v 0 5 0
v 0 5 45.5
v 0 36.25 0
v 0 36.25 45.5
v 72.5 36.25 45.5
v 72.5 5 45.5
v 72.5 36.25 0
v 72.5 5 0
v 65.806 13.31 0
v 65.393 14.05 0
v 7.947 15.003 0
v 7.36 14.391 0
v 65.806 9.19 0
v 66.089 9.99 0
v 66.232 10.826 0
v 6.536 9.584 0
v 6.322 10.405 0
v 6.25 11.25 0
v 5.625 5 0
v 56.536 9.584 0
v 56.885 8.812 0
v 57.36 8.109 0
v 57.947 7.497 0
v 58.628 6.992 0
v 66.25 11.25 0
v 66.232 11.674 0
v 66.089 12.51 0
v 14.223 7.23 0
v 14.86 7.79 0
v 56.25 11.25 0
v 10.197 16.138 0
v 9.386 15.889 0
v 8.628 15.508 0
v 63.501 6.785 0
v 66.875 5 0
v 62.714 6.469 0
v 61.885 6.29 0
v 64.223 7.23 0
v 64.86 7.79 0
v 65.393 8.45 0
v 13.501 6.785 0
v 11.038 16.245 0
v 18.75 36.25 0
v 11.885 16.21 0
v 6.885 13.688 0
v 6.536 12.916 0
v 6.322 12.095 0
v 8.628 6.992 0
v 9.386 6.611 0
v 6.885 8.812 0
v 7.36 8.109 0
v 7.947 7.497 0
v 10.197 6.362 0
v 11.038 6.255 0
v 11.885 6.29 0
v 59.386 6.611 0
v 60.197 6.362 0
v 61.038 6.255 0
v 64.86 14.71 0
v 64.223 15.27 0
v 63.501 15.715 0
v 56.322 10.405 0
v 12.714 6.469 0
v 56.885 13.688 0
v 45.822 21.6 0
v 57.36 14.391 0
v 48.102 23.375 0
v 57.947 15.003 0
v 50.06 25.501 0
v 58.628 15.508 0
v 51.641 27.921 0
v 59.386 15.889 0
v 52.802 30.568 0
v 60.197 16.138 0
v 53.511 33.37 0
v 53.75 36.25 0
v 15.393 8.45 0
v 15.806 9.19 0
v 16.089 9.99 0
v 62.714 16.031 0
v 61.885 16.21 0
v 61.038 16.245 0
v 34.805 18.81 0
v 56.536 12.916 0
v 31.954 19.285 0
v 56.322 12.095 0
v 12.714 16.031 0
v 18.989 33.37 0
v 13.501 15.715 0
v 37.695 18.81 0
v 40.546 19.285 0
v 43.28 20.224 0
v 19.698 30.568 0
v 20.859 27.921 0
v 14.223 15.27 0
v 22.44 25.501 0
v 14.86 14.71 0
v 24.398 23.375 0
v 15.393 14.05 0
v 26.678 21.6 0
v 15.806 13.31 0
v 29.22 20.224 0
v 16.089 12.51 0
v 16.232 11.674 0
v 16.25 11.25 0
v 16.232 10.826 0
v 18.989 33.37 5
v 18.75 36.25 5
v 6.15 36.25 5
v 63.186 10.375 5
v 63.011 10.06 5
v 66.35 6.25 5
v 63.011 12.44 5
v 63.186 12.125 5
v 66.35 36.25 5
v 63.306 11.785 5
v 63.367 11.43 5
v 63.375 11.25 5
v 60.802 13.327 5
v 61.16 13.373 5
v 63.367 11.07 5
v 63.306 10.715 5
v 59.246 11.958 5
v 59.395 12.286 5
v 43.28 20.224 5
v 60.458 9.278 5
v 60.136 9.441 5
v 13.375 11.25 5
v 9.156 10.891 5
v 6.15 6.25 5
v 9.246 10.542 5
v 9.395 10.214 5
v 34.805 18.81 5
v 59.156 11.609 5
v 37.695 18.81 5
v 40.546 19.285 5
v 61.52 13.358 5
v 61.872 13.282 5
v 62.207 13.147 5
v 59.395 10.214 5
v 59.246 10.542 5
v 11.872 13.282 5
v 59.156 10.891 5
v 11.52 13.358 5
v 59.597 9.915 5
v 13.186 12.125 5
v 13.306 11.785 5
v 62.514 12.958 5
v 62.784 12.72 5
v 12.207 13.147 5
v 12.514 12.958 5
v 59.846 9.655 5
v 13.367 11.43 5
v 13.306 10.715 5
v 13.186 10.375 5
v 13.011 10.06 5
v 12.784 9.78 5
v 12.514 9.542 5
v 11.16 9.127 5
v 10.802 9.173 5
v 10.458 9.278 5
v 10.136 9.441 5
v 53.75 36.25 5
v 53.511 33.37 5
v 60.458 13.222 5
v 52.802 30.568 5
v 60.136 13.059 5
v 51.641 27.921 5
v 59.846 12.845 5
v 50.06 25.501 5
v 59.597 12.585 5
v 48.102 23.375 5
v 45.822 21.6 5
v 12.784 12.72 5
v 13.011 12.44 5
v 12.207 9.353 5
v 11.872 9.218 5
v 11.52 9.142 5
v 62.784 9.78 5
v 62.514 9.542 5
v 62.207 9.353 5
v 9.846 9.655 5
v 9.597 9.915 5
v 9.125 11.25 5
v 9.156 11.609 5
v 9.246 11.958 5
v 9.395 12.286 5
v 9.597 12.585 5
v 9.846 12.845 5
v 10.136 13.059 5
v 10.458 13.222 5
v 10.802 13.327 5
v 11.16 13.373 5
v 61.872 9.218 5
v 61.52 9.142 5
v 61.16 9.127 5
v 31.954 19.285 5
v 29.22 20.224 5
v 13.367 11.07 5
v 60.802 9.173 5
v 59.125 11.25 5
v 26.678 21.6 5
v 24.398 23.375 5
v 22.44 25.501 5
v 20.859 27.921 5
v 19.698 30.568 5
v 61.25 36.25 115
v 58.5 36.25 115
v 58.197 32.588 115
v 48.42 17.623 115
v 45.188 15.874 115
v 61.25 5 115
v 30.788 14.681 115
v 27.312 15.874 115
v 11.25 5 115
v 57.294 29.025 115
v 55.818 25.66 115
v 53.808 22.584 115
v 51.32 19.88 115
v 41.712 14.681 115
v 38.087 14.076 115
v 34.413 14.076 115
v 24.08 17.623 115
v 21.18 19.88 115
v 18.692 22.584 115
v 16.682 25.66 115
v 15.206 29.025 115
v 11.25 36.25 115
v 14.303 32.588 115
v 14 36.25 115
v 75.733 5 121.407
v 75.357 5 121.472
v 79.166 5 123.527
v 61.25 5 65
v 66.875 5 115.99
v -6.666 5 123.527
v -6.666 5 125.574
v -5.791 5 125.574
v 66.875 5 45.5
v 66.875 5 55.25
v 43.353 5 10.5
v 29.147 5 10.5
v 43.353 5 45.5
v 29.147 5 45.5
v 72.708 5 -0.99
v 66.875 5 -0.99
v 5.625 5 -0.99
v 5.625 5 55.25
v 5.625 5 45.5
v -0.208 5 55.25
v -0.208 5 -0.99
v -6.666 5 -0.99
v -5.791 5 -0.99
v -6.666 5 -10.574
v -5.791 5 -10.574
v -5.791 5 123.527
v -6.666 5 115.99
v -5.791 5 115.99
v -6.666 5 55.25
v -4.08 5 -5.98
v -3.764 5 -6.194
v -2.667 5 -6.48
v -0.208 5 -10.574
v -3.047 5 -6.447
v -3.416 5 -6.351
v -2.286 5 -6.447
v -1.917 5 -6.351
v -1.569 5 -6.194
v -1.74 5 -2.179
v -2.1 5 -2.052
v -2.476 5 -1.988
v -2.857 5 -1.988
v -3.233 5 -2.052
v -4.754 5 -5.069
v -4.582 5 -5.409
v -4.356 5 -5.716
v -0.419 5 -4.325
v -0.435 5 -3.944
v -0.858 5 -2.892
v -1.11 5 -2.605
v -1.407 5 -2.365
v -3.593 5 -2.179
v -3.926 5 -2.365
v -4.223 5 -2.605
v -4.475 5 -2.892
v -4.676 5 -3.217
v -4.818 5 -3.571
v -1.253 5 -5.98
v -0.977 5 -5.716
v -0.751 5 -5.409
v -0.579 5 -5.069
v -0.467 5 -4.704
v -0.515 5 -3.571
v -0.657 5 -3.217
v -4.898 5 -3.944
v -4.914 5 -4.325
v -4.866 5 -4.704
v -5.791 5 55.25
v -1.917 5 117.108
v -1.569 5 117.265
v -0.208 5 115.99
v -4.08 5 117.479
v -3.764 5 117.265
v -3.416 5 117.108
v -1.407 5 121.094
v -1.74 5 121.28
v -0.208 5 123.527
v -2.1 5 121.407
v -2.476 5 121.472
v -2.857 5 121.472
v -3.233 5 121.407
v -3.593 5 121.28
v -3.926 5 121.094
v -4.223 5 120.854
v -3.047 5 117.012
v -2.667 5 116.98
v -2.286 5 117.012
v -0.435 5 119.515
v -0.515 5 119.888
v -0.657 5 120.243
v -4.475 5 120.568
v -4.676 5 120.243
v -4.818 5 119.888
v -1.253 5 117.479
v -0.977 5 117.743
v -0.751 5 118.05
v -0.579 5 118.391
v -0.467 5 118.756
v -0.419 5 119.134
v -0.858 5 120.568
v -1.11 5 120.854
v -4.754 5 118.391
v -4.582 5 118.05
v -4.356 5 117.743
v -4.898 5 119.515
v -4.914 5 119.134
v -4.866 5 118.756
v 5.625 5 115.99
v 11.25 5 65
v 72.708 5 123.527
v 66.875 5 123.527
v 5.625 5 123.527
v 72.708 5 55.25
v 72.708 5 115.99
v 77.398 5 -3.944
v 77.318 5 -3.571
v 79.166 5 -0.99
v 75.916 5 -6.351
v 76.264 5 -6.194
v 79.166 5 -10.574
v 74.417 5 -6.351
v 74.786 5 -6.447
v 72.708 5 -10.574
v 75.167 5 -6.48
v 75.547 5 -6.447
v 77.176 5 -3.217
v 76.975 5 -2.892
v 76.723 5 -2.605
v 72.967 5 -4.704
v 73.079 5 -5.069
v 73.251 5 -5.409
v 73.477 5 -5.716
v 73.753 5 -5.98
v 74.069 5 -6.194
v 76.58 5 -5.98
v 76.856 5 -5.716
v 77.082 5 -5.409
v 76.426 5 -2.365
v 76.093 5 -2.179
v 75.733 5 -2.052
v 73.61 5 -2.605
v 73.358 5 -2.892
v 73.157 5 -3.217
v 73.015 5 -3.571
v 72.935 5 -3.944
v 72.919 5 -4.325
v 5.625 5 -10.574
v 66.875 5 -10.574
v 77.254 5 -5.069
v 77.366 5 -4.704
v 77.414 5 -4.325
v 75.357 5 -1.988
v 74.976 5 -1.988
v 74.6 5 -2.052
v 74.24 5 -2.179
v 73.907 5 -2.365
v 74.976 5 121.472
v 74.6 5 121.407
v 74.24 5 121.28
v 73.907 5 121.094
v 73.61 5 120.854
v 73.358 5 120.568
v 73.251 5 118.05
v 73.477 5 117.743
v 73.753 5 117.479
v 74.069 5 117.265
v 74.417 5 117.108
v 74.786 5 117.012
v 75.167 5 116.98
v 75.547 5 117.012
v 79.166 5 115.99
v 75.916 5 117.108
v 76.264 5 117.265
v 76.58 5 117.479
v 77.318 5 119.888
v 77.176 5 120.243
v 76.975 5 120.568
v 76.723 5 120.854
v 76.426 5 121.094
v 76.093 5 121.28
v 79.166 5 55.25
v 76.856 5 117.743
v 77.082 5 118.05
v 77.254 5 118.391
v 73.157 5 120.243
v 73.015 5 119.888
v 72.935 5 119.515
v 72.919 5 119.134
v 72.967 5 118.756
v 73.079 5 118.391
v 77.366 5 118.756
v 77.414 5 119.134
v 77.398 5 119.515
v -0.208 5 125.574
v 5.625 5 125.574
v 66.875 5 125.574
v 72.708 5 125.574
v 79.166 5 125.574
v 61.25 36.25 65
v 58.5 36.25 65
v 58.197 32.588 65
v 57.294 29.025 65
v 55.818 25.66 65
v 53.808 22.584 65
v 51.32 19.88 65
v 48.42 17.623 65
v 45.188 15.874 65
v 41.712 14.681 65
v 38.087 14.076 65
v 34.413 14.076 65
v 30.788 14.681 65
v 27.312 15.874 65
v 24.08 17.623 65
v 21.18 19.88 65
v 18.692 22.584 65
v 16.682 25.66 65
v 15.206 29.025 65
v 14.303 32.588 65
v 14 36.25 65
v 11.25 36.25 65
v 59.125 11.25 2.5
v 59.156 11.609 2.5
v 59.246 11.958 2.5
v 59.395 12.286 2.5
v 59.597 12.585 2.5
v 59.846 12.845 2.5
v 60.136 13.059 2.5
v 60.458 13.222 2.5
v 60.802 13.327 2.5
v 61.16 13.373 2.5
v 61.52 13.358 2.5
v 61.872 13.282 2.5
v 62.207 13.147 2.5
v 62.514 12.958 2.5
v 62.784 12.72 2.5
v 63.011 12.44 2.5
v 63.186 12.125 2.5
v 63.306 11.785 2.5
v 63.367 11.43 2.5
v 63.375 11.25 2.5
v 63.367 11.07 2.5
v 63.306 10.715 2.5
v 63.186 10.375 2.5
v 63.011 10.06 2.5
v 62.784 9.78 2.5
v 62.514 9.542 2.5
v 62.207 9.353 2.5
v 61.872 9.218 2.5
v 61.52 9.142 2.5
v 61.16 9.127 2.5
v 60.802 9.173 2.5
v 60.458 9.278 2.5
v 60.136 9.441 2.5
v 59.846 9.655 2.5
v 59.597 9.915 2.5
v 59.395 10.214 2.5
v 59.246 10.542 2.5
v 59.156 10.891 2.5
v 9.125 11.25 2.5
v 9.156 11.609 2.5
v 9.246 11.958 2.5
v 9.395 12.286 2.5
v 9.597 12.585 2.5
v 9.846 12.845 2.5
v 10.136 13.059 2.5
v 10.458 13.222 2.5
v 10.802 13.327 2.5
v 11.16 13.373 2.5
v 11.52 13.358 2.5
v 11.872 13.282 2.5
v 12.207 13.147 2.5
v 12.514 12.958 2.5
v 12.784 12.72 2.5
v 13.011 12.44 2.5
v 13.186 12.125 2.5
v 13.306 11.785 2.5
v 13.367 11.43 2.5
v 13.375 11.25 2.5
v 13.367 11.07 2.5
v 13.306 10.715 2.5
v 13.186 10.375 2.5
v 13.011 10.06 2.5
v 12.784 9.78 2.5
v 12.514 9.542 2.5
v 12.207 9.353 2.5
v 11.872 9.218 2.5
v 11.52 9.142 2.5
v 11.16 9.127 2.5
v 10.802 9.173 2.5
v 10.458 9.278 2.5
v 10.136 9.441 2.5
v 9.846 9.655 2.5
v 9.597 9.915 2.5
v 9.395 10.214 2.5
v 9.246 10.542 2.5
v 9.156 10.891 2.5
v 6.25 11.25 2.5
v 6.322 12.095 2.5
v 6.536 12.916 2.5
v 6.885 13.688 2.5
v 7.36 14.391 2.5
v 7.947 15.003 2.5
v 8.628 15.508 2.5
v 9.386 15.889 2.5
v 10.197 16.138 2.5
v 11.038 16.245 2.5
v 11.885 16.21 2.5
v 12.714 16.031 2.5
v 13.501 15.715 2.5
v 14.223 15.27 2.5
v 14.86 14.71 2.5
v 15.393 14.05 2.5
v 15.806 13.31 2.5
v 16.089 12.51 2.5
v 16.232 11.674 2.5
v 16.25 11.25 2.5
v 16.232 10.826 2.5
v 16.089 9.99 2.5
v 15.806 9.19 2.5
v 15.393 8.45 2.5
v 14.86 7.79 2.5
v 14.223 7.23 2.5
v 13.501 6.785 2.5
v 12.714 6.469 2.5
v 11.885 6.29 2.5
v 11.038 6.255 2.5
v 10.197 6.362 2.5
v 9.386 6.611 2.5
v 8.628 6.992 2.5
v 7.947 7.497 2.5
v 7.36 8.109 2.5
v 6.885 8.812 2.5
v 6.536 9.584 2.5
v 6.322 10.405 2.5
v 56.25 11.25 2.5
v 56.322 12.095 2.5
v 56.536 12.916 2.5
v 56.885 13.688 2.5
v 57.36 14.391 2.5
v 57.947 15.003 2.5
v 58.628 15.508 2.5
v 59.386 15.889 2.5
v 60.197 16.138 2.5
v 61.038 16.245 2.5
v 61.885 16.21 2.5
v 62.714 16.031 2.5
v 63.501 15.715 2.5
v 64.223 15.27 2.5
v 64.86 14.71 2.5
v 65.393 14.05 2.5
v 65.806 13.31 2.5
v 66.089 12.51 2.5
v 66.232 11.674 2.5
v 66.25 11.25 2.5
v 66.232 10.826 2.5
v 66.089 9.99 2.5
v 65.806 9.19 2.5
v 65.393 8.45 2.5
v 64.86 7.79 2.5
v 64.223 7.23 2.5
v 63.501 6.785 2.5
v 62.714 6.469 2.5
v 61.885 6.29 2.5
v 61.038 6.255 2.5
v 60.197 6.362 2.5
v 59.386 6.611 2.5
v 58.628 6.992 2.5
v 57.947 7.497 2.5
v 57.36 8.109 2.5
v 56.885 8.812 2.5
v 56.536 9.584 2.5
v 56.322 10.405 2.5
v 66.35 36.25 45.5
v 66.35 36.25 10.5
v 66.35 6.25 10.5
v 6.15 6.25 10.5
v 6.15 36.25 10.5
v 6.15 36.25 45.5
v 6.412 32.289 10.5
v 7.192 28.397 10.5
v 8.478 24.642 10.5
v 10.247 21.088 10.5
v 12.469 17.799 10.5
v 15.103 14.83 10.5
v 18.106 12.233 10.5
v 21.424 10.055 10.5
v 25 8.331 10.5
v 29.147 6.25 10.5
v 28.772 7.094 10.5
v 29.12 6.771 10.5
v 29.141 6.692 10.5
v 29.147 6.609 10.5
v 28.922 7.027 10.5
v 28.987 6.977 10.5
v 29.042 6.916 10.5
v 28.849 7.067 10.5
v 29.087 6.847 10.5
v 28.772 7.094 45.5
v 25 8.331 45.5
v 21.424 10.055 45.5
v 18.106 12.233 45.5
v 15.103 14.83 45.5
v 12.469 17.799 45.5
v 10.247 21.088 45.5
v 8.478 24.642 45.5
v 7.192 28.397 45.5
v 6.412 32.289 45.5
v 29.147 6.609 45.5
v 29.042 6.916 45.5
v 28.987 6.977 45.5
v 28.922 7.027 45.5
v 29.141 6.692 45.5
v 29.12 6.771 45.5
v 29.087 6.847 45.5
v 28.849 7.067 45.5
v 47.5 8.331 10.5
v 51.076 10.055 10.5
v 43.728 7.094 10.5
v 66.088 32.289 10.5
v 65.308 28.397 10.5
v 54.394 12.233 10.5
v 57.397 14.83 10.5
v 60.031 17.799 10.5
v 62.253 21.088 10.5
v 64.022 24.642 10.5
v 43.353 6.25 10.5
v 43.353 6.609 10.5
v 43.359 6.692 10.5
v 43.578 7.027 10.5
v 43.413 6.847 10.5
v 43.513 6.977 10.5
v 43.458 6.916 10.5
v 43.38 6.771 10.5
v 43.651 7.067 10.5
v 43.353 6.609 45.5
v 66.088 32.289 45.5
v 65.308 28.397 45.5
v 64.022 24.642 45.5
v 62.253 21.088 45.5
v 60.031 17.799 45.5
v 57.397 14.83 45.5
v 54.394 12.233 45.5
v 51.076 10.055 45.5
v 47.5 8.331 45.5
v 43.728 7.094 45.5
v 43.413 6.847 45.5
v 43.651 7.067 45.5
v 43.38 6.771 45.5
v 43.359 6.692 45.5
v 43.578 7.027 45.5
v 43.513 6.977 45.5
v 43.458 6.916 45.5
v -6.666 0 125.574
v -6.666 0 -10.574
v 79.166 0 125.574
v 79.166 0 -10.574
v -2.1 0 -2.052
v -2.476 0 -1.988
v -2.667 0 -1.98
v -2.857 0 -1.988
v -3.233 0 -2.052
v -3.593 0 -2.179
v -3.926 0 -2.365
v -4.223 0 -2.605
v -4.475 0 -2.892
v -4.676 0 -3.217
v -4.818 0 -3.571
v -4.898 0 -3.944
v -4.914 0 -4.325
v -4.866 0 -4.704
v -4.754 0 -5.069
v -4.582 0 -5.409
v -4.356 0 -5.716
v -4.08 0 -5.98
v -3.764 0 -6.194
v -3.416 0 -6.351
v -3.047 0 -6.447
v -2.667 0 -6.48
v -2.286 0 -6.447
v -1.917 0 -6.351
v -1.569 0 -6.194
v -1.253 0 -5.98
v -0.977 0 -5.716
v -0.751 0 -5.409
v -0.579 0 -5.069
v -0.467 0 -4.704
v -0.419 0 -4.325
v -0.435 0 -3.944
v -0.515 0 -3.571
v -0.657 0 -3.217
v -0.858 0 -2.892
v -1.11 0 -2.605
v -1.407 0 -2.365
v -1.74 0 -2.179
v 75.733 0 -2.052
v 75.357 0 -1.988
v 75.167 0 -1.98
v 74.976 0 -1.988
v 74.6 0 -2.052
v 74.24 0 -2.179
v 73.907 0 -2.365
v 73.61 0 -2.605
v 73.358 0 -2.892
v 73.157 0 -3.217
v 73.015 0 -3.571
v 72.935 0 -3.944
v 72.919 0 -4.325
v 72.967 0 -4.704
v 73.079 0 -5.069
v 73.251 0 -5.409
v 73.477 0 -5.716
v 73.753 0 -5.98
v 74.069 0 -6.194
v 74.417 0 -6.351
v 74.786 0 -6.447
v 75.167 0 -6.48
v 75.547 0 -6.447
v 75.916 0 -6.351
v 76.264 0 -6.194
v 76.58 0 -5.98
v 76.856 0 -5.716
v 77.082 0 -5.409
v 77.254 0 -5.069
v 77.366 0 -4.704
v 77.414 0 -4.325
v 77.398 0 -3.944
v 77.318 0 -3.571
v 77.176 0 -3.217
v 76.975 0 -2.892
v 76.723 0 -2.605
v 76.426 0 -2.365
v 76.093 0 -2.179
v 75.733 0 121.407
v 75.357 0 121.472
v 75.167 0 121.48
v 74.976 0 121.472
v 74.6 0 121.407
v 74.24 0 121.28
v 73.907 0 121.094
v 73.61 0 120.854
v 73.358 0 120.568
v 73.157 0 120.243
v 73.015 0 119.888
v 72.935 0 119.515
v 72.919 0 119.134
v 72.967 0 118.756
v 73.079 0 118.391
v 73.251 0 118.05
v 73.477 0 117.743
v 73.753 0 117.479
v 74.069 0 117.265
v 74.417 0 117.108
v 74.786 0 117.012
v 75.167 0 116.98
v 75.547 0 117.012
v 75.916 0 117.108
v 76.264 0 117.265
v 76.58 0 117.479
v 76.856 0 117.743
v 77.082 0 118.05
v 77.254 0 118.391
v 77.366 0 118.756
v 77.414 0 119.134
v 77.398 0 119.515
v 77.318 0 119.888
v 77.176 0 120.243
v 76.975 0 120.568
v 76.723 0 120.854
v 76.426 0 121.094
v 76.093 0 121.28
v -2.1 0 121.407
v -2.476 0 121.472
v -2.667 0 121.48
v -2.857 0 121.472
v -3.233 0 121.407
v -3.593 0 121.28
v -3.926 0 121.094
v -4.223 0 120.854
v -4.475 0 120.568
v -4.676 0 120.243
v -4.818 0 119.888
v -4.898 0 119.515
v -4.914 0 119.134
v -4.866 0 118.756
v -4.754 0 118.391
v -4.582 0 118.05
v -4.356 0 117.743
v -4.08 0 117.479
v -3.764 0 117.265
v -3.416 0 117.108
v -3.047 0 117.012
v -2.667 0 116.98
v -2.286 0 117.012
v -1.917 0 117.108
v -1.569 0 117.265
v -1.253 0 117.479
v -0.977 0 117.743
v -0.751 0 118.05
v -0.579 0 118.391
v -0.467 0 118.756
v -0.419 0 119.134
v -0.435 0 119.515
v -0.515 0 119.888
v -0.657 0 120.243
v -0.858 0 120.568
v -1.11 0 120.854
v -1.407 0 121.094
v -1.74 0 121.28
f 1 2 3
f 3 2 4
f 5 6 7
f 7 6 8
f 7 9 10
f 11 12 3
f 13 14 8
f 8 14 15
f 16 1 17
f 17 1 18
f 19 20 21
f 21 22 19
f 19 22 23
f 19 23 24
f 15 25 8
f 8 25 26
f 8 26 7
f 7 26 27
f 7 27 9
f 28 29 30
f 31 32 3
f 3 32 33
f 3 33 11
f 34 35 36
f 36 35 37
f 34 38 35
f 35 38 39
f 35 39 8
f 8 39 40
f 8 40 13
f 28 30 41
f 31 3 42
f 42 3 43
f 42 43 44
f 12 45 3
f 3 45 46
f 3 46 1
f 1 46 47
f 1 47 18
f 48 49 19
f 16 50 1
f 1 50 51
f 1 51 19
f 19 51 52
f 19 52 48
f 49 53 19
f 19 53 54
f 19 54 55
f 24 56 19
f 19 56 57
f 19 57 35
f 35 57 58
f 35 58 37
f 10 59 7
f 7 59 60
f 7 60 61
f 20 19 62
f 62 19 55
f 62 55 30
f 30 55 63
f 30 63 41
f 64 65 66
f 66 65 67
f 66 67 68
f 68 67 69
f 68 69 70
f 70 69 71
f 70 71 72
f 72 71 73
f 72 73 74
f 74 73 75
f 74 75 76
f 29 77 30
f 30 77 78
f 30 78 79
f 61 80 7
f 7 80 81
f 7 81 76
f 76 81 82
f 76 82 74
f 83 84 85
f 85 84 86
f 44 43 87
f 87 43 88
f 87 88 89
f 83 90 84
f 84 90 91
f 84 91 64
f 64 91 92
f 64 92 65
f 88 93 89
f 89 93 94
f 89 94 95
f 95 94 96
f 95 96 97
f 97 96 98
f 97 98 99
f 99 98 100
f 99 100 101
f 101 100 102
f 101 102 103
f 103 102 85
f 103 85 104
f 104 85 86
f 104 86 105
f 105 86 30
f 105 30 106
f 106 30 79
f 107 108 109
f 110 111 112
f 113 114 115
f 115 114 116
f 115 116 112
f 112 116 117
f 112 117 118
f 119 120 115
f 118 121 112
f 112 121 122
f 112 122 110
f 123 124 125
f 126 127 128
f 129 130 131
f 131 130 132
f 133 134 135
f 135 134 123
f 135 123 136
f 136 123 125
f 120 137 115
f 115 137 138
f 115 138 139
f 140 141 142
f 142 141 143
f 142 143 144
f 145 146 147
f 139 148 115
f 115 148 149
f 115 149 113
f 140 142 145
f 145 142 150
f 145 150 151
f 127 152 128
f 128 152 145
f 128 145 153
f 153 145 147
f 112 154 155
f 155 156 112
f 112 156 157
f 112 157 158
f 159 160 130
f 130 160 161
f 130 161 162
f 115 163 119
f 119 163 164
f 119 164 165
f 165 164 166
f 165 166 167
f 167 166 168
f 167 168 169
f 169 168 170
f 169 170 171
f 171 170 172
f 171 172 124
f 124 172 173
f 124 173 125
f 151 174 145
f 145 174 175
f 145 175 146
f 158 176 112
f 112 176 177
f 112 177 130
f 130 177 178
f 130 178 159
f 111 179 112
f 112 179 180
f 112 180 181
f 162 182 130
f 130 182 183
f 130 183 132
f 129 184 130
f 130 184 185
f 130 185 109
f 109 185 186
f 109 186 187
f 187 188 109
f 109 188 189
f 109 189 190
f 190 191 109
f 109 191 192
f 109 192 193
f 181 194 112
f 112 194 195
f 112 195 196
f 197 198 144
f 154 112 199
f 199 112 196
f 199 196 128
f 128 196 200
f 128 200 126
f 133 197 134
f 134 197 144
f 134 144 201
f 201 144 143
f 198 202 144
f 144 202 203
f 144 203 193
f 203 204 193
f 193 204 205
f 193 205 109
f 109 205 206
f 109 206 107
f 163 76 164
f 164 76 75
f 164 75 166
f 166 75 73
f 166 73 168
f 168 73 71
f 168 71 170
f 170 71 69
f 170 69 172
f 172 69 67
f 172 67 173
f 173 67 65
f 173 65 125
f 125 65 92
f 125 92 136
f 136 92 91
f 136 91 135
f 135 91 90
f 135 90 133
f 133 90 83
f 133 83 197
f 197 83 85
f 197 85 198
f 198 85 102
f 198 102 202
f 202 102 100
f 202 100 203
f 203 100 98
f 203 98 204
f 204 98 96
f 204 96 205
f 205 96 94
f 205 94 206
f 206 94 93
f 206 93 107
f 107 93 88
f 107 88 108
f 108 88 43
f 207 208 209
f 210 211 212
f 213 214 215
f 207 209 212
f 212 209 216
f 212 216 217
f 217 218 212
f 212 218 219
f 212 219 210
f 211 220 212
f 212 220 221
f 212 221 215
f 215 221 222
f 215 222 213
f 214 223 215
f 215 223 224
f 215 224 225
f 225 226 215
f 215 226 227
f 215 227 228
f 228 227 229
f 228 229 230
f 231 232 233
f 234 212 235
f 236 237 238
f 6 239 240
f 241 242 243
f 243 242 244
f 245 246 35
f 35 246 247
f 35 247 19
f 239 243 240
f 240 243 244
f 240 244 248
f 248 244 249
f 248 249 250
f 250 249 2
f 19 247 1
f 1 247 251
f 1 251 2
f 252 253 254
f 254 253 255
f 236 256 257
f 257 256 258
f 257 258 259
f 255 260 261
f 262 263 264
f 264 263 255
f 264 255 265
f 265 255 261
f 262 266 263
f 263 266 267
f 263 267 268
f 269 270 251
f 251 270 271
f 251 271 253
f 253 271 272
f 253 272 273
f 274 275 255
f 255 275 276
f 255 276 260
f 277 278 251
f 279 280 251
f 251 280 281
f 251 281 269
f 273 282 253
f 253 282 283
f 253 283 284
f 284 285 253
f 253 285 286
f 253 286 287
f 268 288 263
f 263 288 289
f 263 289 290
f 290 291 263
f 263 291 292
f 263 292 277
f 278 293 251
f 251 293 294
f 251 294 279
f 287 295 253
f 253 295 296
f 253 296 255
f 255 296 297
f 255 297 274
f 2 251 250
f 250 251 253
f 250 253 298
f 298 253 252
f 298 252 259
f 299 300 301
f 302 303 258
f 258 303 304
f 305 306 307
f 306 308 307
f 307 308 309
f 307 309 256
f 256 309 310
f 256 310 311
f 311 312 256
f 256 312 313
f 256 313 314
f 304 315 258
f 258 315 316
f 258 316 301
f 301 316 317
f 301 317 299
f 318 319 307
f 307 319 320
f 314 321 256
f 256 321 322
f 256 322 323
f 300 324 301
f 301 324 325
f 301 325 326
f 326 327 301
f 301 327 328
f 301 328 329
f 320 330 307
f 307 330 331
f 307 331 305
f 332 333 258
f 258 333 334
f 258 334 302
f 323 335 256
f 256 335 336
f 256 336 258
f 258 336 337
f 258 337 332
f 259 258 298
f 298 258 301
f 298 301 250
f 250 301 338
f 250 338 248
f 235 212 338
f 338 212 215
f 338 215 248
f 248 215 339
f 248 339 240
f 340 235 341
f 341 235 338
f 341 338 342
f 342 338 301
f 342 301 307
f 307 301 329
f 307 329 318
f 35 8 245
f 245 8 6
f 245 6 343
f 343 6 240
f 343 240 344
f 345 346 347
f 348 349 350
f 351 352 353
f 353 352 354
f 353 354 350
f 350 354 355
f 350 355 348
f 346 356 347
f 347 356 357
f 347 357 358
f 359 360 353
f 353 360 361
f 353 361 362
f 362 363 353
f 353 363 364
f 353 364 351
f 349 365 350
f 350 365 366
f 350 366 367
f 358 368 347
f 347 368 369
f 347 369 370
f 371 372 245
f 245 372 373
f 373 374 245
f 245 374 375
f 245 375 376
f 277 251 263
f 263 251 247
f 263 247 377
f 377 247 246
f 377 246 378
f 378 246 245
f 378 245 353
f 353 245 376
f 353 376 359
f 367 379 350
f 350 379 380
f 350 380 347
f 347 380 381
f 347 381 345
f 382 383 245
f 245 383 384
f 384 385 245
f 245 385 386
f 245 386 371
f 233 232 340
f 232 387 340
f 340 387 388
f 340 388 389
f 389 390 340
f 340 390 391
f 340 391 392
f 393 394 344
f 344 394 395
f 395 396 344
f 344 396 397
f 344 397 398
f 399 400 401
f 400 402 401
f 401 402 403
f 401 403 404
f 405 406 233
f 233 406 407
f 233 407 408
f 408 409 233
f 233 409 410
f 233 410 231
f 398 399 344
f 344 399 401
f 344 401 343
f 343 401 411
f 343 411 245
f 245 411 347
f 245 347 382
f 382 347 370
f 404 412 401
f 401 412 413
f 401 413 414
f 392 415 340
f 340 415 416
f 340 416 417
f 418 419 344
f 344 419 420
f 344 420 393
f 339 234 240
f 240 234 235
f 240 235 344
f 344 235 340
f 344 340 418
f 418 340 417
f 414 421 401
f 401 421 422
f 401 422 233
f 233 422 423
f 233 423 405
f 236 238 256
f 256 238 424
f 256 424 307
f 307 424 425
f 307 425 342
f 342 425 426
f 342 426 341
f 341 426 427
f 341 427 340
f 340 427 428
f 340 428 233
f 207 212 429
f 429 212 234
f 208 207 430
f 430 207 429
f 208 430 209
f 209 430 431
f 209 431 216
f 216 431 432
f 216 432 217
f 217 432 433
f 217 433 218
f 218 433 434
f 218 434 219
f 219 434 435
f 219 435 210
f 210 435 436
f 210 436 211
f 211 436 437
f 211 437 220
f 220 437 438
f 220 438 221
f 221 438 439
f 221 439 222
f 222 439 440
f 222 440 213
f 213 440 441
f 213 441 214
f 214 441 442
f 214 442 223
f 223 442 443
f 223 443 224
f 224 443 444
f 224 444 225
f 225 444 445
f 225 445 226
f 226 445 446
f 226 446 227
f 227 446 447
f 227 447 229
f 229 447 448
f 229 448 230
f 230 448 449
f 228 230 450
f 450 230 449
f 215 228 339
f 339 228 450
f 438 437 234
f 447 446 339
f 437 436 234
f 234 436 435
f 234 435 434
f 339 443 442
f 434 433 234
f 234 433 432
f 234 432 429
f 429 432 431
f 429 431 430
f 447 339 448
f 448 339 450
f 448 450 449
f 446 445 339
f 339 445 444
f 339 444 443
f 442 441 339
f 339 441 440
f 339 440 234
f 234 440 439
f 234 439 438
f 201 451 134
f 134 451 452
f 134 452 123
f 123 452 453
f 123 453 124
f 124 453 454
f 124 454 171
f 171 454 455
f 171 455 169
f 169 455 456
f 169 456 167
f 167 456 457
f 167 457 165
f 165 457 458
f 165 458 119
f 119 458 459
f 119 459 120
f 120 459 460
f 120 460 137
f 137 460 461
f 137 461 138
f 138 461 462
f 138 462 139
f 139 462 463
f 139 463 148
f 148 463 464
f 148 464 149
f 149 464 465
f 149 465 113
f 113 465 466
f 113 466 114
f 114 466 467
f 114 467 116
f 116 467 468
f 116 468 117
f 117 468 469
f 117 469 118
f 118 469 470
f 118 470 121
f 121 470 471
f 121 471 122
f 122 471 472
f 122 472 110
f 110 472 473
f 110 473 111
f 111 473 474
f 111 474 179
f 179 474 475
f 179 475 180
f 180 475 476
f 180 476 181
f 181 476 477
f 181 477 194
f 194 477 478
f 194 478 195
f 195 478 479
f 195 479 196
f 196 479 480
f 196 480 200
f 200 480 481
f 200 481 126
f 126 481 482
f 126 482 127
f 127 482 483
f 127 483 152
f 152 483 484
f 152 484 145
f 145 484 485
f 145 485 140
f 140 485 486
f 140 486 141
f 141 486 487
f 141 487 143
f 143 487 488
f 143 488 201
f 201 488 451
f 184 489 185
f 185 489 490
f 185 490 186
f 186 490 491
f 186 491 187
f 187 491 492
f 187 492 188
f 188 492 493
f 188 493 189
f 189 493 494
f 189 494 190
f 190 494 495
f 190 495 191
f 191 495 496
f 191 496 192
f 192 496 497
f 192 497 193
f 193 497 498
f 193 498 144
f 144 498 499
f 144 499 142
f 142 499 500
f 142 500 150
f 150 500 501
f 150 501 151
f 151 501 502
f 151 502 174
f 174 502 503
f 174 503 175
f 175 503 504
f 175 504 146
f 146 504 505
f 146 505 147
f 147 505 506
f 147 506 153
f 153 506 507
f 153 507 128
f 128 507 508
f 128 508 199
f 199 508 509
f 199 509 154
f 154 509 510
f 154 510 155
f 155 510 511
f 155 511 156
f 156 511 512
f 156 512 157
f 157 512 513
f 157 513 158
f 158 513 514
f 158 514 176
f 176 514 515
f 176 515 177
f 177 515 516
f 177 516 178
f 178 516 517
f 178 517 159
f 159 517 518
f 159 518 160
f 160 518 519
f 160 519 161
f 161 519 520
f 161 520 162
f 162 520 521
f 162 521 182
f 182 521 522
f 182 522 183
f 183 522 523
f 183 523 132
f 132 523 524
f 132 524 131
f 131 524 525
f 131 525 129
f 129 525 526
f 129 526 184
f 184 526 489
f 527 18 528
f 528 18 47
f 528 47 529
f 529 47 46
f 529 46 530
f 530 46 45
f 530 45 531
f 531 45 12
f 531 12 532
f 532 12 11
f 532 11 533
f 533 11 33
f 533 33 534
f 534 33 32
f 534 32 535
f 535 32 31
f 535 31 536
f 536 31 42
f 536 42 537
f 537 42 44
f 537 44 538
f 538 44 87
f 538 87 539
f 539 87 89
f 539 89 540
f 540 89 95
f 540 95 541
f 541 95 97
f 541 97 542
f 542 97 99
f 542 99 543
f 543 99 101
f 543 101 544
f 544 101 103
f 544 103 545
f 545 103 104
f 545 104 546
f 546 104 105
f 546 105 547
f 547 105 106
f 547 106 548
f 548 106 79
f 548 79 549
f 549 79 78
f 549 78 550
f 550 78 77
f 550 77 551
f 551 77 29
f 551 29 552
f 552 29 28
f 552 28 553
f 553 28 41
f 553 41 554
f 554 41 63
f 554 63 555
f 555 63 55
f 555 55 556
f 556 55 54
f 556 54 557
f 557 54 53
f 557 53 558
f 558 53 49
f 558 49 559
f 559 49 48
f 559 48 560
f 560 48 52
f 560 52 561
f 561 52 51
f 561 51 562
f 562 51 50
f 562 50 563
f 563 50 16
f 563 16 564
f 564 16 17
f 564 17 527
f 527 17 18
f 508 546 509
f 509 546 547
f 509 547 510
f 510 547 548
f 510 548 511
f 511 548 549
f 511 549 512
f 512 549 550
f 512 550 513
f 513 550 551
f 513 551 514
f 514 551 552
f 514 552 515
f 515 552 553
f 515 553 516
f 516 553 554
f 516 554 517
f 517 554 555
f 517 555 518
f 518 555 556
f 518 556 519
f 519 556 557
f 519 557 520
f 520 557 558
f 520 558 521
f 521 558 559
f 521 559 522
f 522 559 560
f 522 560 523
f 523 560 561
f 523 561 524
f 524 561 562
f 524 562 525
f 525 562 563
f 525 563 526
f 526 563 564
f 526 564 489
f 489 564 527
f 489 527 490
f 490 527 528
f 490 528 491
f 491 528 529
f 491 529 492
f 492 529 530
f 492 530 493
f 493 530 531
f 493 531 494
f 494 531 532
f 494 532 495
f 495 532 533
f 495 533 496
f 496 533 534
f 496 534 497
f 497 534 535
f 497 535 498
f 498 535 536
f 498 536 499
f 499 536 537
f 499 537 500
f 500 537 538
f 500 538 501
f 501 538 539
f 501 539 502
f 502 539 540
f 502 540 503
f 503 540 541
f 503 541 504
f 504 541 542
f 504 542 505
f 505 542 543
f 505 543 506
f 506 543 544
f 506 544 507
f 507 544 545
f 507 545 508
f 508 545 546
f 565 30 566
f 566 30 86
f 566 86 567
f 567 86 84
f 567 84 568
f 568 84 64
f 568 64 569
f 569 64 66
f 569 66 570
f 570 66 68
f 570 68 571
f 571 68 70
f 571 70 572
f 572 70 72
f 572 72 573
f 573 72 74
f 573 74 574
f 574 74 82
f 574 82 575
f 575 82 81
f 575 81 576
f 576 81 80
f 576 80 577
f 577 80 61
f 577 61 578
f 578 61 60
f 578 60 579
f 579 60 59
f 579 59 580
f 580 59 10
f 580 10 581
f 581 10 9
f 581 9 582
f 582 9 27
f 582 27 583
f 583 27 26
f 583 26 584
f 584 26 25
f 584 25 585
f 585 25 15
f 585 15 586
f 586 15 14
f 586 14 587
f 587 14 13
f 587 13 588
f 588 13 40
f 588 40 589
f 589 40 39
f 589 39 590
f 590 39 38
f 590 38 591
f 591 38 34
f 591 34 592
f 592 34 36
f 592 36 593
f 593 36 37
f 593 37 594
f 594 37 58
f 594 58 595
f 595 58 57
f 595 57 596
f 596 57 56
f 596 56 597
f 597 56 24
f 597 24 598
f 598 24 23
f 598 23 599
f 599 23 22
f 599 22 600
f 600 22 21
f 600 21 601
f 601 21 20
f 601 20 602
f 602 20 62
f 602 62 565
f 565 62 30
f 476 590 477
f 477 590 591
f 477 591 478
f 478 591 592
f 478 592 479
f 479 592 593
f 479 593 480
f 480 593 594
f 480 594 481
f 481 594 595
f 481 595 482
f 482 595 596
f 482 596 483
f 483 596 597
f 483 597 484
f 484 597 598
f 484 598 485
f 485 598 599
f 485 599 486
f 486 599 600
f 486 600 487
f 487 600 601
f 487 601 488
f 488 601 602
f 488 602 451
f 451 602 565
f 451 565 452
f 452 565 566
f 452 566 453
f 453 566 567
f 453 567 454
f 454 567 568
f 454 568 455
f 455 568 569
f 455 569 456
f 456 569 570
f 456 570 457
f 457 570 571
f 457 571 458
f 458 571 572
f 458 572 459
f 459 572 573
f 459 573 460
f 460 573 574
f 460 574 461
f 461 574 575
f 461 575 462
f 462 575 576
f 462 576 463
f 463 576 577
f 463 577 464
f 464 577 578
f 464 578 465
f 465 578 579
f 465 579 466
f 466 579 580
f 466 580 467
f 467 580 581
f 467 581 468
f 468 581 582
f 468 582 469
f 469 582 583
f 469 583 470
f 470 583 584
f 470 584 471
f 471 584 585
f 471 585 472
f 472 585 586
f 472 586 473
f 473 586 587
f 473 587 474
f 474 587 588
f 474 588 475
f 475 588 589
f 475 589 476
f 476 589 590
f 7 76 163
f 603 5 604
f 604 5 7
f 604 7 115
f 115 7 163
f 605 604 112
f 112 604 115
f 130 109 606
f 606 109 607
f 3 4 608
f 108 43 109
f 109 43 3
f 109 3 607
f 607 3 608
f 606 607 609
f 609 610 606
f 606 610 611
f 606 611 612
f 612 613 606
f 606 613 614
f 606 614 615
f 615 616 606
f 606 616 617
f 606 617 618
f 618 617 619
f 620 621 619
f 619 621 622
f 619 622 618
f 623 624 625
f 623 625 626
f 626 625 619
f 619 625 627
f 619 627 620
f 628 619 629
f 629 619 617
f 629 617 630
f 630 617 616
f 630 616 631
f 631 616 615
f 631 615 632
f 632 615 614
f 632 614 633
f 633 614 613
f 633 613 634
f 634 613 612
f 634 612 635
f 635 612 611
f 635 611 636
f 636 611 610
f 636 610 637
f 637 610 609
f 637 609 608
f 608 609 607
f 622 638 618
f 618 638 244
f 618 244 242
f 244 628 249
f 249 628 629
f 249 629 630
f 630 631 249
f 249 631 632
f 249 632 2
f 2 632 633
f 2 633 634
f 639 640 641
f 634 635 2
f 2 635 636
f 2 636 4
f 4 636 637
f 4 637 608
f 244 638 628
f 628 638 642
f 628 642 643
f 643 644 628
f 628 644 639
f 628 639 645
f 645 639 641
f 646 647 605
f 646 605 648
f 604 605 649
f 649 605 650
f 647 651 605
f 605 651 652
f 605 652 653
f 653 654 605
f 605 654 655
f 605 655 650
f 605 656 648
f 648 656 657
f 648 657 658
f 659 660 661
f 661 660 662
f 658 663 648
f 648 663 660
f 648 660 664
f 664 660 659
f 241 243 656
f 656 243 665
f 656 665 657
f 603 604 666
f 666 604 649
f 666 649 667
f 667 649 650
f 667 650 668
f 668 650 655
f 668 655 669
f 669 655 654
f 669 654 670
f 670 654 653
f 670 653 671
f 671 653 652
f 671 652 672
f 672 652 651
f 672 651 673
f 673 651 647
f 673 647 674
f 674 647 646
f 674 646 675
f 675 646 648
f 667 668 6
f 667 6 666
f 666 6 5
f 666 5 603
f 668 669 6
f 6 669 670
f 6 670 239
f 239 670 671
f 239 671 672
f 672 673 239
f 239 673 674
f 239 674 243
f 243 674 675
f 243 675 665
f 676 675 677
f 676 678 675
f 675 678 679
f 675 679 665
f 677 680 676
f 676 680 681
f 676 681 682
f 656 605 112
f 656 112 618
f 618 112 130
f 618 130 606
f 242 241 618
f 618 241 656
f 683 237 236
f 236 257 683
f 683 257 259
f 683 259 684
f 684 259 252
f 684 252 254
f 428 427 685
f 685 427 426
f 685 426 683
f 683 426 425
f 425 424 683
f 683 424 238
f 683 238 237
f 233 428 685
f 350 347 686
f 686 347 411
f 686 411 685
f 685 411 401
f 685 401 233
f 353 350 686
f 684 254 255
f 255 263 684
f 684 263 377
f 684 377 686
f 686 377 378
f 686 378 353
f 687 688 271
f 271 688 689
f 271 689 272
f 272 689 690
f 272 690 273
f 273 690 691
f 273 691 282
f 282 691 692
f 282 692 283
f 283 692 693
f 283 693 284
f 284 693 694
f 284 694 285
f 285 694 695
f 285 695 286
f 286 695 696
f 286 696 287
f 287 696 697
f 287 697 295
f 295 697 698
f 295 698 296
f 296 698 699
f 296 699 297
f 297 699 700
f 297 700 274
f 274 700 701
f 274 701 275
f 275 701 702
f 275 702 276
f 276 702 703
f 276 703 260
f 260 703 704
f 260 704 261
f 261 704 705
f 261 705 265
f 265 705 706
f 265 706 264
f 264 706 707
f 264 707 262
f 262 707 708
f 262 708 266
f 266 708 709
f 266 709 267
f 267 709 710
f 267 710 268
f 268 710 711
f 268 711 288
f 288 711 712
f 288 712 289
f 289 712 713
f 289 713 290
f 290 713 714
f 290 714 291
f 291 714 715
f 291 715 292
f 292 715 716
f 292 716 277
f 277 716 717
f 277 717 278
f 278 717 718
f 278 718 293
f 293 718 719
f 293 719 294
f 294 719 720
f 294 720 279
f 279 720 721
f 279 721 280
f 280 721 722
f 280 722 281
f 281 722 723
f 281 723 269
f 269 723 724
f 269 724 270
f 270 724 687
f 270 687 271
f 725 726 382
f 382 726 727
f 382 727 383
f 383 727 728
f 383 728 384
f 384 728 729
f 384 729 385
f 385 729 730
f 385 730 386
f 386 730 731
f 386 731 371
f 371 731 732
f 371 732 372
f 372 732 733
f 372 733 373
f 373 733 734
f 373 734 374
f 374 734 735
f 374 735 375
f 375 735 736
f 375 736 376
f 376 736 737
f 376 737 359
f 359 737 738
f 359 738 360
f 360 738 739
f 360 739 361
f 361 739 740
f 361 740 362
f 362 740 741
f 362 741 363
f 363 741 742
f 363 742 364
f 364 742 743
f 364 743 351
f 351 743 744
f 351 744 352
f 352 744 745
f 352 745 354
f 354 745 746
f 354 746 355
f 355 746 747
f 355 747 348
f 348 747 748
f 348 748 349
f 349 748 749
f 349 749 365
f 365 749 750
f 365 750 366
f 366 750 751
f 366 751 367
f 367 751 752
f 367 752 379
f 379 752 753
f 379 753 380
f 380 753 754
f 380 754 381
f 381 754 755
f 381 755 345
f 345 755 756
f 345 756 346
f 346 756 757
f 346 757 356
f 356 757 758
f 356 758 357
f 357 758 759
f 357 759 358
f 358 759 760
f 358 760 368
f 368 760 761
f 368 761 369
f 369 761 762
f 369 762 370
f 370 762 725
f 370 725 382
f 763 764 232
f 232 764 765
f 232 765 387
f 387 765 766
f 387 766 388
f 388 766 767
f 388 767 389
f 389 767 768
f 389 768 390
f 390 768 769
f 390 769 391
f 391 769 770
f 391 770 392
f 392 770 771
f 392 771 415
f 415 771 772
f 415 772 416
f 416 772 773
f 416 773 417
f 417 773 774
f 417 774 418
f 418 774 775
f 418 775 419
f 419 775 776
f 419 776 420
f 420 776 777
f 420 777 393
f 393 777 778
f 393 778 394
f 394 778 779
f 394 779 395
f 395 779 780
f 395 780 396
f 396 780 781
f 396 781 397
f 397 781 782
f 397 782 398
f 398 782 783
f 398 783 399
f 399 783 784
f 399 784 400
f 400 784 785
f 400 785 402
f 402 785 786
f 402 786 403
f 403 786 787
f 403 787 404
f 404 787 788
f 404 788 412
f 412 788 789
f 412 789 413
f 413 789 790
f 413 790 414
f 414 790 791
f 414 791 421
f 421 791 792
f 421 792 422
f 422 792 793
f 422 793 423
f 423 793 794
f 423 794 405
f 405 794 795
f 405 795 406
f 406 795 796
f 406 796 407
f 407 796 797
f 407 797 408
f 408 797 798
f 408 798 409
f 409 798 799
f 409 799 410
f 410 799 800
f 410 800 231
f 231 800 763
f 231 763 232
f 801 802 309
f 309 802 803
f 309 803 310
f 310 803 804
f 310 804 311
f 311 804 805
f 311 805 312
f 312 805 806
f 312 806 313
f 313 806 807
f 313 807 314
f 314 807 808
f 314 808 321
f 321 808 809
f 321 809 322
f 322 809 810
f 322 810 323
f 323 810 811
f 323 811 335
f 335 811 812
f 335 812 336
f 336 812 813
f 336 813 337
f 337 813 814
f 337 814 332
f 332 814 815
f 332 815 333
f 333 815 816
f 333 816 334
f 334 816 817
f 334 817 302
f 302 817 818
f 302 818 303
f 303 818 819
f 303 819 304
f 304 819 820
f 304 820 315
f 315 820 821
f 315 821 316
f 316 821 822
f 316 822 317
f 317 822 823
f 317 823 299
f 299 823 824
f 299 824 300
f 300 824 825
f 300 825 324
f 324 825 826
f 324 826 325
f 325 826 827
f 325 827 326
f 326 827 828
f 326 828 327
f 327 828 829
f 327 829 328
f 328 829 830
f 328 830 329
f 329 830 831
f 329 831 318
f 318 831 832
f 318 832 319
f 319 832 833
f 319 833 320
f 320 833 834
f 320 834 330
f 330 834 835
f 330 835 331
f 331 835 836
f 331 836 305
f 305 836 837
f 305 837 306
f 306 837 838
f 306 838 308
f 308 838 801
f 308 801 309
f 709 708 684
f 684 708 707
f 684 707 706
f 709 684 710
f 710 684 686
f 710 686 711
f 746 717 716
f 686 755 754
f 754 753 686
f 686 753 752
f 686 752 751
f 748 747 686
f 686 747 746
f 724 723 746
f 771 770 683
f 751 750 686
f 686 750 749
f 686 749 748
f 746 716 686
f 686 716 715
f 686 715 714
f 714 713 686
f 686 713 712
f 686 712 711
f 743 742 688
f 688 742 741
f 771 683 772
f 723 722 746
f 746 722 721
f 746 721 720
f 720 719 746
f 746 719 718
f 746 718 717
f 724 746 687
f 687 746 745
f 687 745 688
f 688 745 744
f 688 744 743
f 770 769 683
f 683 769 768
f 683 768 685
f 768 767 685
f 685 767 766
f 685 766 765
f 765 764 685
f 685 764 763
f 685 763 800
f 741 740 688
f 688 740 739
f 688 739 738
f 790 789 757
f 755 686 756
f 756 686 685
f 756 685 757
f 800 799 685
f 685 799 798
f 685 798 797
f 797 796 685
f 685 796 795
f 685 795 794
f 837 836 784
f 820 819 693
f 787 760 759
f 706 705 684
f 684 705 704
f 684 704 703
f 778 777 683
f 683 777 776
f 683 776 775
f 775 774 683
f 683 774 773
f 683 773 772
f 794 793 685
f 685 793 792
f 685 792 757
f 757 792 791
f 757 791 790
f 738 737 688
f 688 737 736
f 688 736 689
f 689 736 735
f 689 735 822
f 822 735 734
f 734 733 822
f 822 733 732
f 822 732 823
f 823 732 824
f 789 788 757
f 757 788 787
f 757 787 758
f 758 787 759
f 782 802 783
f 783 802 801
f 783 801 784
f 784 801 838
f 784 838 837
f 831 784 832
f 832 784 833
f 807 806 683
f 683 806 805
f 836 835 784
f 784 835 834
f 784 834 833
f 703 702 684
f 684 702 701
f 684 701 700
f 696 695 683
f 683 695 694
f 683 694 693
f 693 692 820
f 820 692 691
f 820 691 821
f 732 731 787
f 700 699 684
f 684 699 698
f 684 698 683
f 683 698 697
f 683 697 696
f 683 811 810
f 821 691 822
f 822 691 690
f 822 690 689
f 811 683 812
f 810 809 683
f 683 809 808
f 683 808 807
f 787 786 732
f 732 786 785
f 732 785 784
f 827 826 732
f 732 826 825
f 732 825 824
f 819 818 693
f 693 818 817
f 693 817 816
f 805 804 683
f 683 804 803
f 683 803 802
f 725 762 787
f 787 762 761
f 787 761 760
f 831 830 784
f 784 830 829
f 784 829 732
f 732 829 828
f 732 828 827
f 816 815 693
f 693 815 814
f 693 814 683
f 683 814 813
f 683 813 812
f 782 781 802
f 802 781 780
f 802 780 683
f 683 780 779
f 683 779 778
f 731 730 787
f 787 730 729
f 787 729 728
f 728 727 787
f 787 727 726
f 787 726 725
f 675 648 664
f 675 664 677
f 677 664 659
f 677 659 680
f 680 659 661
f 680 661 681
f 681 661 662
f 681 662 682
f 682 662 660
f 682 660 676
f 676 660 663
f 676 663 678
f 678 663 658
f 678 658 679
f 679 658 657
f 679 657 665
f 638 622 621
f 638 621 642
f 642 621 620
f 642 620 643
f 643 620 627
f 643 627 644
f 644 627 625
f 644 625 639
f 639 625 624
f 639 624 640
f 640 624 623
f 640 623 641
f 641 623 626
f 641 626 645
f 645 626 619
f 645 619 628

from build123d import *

# Parameters (mm, degrees)
SKETCH1_W           = 72.5
SKETCH1_H           = 72.5
SKETCH1_R           = 17.5
SKETCH1_R_2         = 2.125
BOSS_EXTRUDE1_DEPTH = 5
BOSS_EXTRUDE2_DEPTH = 50
SKETCH18_R          = 5
CUT_EXTRUDE1_DEPTH  = 2.5
BOSS_EXTRUDE3_DEPTH = 5.5
SKETCH8_W           = 72.5
SKETCH8_H           = 5
BOSS_EXTRUDE4_DEPTH = 54.5
BOSS_EXTRUDE5_DEPTH = 35
BOSS_EXTRUDE7_DEPTH = 1.25
SKETCH12_W          = 85.832523084
SKETCH12_H          = 136.148140064
SKETCH12_R          = 2.25
BOSS_EXTRUDE6_DEPTH = 5
FILLET10_R          = 0.5
SKETCH26_W          = 72.5
SKETCH26_H          = 36.25
CUT_EXTRUDE3_DEPTH  = 166.204098106


with BuildPart() as part:
    # Sketch1 → Boss-Extrude1 (new body)
    with BuildSketch(Plane.XY):
        with Locations((36.25, 36.25)):
            Rectangle(SKETCH1_W, SKETCH1_H)
        with Locations((36.25, 36.25)):
            Circle(SKETCH1_R, mode=Mode.SUBTRACT)
        with Locations((11.25, 61.25)):
            Circle(SKETCH1_R_2, mode=Mode.SUBTRACT)
        with Locations((61.25, 61.25)):
            Circle(SKETCH1_R_2, mode=Mode.SUBTRACT)
        with Locations((61.25, 11.25)):
            Circle(SKETCH1_R_2, mode=Mode.SUBTRACT)
        with Locations((11.25, 11.25)):
            Circle(SKETCH1_R_2, mode=Mode.SUBTRACT)
    extrude(amount=BOSS_EXTRUDE1_DEPTH)

    # Sketch18 → Cut-Extrude1 (cut)
    with BuildSketch(Plane.XY):
        with Locations((61.25, 61.25)):
            Circle(SKETCH18_R)
        with Locations((11.25, 61.25)):
            Circle(SKETCH18_R)
        with Locations((61.25, 11.25)):
            Circle(SKETCH18_R)
        with Locations((11.25, 11.25)):
            Circle(SKETCH18_R)
    extrude(amount=CUT_EXTRUDE1_DEPTH, mode=Mode.SUBTRACT)

    # Sketch7 → Boss-Extrude3 (add)
    with BuildSketch(Plane.XY.offset(5)):
        Polygon((0, 0), (72.5, 0), (72.5, 36.25), (66.35, 36.25), (66.35, 5), (6.15, 5), (6.15, 36.25), (0, 36.25), align=None)
    extrude(amount=BOSS_EXTRUDE3_DEPTH)



with BuildPart() as body_2:
    # Sketch5 → Boss-Extrude2 (new body)
    with BuildSketch(Plane.XY.offset(65)):
        with BuildLine():
            Line((0, 0), (72.5, 0))
            Line((72.5, 0), (72.5, 5))
            Line((72.5, 5), (61.25, 5))
            Line((61.25, 5), (61.25, 36.25))
            Line((61.25, 36.25), (58.5, 36.25))
            ThreePointArc((58.5, 36.25), (36.25, 14), (14, 36.25))
            Line((14, 36.25), (11.25, 36.25))
            Line((11.25, 36.25), (11.25, 5))
            Line((11.25, 5), (0, 5))
            Line((0, 5), (0, 0))
        make_face()
    extrude(amount=BOSS_EXTRUDE2_DEPTH)


with BuildPart() as part_1:
    add(part.part)

    add(body_2.part)  # Boss-Extrude4 merges body 2
    # Sketch8 → Boss-Extrude4 (add)
    with BuildSketch(Plane.XY.offset(65)):
        with Locations((36.25, 2.5)):
            Rectangle(SKETCH8_W, SKETCH8_H)
    extrude(amount=-BOSS_EXTRUDE4_DEPTH)

    # Sketch11 → Boss-Extrude5 (add)
    with BuildSketch(Plane.XY.offset(10.5)):
        with BuildLine():
            Line((0, 5), (29.147359646, 5))
            Line((29.147359646, 5), (29.147359646, 7))
            ThreePointArc((29.147359646, 7), (12.587799398, 17.645961119), (6.15, 36.25))
            Line((6.15, 36.25), (0, 36.25))
            Line((0, 36.25), (0, 5))
        make_face()
        with BuildLine():
            Line((72.5, 5), (43.352640354, 5))
            Line((43.352640354, 5), (43.352640354, 7))
            ThreePointArc((43.352640354, 7), (59.912200602, 17.645961119), (66.35, 36.25))
            Line((66.35, 36.25), (72.5, 36.25))
            Line((72.5, 36.25), (72.5, 5))
        make_face()
    extrude(amount=BOSS_EXTRUDE5_DEPTH)

    # Sketch17 → Boss-Extrude7 (add)
    with BuildSketch(Plane(origin=(0, 5, 0), x_dir=(1, 0, 0), z_dir=(0, 1, 0))):
        Polygon((6.15, -5), (6.15, -10.5), (66.465854546, -10.5), (66.35, -5), align=None)
    extrude(amount=BOSS_EXTRUDE7_DEPTH)

    # Sketch12 → Boss-Extrude6 (add)
    with BuildSketch(Plane(origin=(0, 0, 0), x_dir=(1, 0, 0), z_dir=(0, 1, 0))):
        with Locations((36.25, -57.5)):
            Rectangle(SKETCH12_W, SKETCH12_H)
        with Locations(Location((-2.666504617, 4.229628013, 0), (0, 0, 90))):
            Circle(SKETCH12_R, mode=Mode.SUBTRACT)
        with Locations(Location((75.166504617, 4.229628013, 0), (0, 0, 90))):
            Circle(SKETCH12_R, mode=Mode.SUBTRACT)
        with Locations(Location((75.166504617, -119.229628013, 0), (0, 0, 90))):
            Circle(SKETCH12_R, mode=Mode.SUBTRACT)
        with Locations(Location((-2.666504617, -119.229628013, 0), (0, 0, 90))):
            Circle(SKETCH12_R, mode=Mode.SUBTRACT)
    extrude(amount=BOSS_EXTRUDE6_DEPTH)

    # Fillet10
    fillet10_edges = [part_1.edges().sort_by_distance(p)[0] for p in [
        (29.147359646, 7, 28),
        (43.352640354, 7, 28),
    ]]
    fillet(fillet10_edges, radius=FILLET10_R)

    # Sketch26 → Cut-Extrude3 (cut, through all)
    with BuildSketch(Plane.XY):
        with Locations((36.25, 54.375)):
            Rectangle(SKETCH26_W, SKETCH26_H)
    extrude(amount=CUT_EXTRUDE3_DEPTH, mode=Mode.SUBTRACT)


solid = part_1.part
